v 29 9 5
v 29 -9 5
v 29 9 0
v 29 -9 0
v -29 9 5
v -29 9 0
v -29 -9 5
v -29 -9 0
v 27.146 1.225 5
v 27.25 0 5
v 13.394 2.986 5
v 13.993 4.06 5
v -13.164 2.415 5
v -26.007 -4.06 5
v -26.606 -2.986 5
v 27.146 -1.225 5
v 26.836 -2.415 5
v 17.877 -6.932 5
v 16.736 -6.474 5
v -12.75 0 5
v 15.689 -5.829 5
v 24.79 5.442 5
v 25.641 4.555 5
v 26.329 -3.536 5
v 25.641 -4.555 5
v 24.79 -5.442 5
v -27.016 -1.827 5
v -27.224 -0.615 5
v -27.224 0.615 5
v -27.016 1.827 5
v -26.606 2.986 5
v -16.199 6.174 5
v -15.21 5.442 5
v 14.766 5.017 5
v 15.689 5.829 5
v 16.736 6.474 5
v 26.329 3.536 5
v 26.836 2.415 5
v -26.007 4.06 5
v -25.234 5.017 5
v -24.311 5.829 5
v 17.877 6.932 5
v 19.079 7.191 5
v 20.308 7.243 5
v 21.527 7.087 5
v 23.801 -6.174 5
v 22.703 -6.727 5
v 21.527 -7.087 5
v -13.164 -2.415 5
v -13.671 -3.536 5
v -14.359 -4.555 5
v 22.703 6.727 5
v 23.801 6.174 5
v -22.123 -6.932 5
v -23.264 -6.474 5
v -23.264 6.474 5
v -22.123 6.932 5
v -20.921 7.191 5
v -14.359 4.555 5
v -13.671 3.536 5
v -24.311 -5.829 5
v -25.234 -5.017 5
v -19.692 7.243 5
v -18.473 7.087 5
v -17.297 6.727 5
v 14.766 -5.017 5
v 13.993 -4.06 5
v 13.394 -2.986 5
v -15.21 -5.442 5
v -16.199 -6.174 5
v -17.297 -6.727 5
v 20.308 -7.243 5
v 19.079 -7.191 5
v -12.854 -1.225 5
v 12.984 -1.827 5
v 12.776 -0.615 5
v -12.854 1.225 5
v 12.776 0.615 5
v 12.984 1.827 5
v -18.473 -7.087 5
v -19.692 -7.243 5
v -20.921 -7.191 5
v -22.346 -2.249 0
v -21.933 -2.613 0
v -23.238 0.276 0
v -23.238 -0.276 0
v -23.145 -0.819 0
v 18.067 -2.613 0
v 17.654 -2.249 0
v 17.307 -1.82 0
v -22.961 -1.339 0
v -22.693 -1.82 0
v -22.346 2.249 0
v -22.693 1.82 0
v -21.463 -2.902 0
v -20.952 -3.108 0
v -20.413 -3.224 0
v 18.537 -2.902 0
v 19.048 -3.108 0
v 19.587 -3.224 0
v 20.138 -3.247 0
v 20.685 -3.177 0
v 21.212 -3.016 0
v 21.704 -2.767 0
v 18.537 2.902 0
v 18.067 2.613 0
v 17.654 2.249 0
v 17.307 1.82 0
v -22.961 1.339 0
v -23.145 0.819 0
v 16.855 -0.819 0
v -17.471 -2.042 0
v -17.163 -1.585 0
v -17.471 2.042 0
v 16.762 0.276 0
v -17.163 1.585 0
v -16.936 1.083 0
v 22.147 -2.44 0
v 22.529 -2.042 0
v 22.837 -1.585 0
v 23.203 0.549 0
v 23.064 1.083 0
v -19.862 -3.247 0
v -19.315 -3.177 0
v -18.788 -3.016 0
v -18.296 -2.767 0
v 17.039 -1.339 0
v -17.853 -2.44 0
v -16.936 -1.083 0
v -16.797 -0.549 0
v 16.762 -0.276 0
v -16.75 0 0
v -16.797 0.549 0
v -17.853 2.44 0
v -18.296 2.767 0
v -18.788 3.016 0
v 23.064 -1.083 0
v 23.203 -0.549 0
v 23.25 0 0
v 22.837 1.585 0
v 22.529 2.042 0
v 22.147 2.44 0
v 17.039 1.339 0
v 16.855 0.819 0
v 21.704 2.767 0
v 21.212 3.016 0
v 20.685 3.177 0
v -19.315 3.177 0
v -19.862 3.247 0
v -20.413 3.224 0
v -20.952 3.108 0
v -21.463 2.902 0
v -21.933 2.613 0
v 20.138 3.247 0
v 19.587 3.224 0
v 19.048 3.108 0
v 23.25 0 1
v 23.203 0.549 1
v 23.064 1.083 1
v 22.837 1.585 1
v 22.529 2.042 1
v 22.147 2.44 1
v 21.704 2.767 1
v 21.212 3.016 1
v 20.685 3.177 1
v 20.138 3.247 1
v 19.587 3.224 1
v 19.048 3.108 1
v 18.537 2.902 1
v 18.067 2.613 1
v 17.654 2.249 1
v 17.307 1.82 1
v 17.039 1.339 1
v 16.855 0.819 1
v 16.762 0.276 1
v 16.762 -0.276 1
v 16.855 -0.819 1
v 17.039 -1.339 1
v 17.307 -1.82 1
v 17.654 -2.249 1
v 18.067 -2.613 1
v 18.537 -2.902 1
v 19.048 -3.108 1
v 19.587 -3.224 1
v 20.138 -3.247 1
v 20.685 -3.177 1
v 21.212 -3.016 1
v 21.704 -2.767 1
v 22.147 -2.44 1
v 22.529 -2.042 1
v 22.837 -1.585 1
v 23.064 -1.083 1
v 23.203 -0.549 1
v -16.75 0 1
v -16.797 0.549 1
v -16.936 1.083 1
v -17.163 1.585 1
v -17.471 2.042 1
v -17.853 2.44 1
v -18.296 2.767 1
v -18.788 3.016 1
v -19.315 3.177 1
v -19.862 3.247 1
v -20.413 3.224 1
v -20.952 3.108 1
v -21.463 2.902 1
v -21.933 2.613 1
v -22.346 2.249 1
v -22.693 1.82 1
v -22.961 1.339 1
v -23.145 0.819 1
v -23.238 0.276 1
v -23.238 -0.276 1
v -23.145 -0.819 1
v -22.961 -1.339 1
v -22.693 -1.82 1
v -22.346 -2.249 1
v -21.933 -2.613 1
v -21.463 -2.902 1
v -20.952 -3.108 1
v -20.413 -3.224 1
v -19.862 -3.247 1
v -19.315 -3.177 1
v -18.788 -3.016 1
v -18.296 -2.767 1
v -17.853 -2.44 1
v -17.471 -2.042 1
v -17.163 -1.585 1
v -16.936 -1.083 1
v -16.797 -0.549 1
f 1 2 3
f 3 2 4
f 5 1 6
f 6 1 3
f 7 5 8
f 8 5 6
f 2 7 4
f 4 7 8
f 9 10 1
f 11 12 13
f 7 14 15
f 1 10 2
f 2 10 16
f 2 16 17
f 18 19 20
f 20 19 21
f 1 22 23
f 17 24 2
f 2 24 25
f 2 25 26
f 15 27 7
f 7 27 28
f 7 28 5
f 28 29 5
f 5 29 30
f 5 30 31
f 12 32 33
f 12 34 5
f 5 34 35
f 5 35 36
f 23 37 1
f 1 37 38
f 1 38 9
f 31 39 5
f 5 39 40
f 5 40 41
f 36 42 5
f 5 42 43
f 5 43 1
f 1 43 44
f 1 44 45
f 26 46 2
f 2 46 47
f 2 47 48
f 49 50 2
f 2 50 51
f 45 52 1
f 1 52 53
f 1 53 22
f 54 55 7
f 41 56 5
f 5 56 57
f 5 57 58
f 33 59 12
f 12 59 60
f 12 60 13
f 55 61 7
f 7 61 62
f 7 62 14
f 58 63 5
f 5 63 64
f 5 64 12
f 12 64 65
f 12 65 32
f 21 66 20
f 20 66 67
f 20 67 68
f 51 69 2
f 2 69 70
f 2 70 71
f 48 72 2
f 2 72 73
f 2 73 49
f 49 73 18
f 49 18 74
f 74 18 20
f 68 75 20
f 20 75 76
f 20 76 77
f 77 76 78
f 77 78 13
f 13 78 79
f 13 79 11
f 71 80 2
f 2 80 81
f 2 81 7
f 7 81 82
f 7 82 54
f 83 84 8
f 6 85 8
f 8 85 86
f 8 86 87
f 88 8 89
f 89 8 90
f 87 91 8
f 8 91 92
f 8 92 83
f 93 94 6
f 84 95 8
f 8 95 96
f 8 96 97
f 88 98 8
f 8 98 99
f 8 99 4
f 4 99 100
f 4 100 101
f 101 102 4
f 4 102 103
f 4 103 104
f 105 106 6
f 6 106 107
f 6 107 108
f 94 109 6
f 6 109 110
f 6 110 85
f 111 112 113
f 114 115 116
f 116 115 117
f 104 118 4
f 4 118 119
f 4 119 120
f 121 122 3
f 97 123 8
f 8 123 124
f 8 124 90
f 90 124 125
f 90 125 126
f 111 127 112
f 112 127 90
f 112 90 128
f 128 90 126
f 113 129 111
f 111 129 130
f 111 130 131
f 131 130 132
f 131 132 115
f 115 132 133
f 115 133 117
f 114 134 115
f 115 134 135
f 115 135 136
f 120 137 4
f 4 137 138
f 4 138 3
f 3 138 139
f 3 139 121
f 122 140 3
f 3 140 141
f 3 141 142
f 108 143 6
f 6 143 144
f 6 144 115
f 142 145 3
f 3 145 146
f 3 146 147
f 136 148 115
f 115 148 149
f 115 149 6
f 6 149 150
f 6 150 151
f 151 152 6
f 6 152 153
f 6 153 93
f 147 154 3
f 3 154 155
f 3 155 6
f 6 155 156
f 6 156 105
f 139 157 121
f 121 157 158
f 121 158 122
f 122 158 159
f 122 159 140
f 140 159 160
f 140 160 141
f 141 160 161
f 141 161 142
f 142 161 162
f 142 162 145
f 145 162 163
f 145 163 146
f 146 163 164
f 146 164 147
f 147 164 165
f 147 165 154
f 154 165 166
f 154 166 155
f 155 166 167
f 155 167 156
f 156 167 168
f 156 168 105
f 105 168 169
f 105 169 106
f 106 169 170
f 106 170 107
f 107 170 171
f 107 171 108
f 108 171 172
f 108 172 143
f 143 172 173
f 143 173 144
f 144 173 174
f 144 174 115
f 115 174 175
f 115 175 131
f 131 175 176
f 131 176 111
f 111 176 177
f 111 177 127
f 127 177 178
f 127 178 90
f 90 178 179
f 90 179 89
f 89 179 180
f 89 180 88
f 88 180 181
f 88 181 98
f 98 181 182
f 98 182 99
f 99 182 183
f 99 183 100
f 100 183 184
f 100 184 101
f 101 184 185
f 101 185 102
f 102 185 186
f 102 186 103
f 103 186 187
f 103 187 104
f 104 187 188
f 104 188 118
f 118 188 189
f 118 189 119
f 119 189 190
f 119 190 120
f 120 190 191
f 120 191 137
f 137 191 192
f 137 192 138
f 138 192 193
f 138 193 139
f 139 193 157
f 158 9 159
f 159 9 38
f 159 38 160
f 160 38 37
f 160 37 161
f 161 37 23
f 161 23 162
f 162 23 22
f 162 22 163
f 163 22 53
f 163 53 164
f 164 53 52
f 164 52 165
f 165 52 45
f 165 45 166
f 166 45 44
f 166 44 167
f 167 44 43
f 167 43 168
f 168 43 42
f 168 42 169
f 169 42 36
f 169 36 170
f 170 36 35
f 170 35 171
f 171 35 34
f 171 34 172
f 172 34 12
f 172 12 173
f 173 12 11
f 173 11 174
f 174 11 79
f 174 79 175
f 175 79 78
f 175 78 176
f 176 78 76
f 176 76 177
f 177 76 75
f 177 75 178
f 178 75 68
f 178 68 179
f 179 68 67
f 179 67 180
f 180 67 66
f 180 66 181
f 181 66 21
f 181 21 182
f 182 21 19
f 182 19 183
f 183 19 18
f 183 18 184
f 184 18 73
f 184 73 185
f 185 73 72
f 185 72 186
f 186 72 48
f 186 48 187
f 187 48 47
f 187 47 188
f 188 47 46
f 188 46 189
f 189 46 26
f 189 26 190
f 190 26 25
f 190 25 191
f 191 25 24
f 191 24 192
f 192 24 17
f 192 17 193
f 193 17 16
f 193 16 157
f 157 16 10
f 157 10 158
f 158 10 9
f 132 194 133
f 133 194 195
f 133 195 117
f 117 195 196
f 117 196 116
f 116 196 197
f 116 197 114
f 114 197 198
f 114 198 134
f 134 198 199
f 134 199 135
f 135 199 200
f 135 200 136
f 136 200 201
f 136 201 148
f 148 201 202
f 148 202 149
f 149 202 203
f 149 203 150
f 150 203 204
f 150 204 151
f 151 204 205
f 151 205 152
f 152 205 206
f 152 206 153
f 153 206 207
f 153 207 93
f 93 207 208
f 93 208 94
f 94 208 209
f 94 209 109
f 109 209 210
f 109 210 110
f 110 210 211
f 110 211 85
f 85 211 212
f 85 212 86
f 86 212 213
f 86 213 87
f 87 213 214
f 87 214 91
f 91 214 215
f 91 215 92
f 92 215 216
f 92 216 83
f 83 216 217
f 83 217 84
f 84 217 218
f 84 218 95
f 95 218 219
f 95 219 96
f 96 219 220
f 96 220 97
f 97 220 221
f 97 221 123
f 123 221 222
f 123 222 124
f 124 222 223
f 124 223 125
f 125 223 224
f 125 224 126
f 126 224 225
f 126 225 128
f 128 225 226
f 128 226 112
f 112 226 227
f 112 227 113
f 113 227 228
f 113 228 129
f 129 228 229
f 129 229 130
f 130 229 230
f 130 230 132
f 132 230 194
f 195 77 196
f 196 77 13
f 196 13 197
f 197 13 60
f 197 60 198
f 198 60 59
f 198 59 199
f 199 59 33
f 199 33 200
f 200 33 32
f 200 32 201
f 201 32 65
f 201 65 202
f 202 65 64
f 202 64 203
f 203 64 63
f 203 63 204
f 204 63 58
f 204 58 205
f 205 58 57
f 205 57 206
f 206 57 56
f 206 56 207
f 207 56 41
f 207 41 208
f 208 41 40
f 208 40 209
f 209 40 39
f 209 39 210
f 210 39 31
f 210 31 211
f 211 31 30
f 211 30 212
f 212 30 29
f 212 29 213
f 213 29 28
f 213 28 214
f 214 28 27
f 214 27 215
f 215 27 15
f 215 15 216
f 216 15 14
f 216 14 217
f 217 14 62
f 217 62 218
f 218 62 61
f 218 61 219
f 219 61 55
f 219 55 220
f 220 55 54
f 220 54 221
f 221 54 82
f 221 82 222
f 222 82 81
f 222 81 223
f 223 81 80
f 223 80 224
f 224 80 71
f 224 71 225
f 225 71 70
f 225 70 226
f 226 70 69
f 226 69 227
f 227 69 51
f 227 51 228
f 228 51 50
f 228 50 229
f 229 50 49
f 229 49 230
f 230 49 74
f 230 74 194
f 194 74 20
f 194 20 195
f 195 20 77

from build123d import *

# Parameters (mm, degrees)
ESQUISSE1_W                = 58
ESQUISSE1_H                = 18
BOSS_EXTRU_1_DEPTH         = 5
R_P_TITION_LIN_AIRE1_COUNT = 2
R_P_TITION_LIN_AIRE1_PITCH = 40


with BuildPart() as part:
    # Esquisse1 → Boss.-Extru.1 (new body)
    with BuildSketch(Plane.XY):
        Rectangle(ESQUISSE1_W, ESQUISSE1_H)
    extrude(amount=BOSS_EXTRU_1_DEPTH)

    # Esquisse3 → Fraisage pour vis à tête fraisée à 6 pans creux M61 (revolve, cut)
    with BuildSketch(Plane(origin=(20, 0, 5), x_dir=(0, -1, 0), z_dir=(1, 0, 0))):
        Polygon((0, 0), (0, 5), (3.25, 5), (3.25, 4), (7.25, 0), align=None)
    fraisage_pour_vis_t_te_frais_e_6_pan = revolve(axis=Axis((20, 0, 11.35), (0, 0, -1)), mode=Mode.SUBTRACT)

    # Répétition linéaire1: Fraisage pour vis à tête fraisée à 6 pans creux M61 ×2
    with Locations(*[(-i * R_P_TITION_LIN_AIRE1_PITCH, 0, 0) for i in range(1, R_P_TITION_LIN_AIRE1_COUNT)]):
        add(fraisage_pour_vis_t_te_frais_e_6_pan, mode=Mode.SUBTRACT)


solid = part.part
